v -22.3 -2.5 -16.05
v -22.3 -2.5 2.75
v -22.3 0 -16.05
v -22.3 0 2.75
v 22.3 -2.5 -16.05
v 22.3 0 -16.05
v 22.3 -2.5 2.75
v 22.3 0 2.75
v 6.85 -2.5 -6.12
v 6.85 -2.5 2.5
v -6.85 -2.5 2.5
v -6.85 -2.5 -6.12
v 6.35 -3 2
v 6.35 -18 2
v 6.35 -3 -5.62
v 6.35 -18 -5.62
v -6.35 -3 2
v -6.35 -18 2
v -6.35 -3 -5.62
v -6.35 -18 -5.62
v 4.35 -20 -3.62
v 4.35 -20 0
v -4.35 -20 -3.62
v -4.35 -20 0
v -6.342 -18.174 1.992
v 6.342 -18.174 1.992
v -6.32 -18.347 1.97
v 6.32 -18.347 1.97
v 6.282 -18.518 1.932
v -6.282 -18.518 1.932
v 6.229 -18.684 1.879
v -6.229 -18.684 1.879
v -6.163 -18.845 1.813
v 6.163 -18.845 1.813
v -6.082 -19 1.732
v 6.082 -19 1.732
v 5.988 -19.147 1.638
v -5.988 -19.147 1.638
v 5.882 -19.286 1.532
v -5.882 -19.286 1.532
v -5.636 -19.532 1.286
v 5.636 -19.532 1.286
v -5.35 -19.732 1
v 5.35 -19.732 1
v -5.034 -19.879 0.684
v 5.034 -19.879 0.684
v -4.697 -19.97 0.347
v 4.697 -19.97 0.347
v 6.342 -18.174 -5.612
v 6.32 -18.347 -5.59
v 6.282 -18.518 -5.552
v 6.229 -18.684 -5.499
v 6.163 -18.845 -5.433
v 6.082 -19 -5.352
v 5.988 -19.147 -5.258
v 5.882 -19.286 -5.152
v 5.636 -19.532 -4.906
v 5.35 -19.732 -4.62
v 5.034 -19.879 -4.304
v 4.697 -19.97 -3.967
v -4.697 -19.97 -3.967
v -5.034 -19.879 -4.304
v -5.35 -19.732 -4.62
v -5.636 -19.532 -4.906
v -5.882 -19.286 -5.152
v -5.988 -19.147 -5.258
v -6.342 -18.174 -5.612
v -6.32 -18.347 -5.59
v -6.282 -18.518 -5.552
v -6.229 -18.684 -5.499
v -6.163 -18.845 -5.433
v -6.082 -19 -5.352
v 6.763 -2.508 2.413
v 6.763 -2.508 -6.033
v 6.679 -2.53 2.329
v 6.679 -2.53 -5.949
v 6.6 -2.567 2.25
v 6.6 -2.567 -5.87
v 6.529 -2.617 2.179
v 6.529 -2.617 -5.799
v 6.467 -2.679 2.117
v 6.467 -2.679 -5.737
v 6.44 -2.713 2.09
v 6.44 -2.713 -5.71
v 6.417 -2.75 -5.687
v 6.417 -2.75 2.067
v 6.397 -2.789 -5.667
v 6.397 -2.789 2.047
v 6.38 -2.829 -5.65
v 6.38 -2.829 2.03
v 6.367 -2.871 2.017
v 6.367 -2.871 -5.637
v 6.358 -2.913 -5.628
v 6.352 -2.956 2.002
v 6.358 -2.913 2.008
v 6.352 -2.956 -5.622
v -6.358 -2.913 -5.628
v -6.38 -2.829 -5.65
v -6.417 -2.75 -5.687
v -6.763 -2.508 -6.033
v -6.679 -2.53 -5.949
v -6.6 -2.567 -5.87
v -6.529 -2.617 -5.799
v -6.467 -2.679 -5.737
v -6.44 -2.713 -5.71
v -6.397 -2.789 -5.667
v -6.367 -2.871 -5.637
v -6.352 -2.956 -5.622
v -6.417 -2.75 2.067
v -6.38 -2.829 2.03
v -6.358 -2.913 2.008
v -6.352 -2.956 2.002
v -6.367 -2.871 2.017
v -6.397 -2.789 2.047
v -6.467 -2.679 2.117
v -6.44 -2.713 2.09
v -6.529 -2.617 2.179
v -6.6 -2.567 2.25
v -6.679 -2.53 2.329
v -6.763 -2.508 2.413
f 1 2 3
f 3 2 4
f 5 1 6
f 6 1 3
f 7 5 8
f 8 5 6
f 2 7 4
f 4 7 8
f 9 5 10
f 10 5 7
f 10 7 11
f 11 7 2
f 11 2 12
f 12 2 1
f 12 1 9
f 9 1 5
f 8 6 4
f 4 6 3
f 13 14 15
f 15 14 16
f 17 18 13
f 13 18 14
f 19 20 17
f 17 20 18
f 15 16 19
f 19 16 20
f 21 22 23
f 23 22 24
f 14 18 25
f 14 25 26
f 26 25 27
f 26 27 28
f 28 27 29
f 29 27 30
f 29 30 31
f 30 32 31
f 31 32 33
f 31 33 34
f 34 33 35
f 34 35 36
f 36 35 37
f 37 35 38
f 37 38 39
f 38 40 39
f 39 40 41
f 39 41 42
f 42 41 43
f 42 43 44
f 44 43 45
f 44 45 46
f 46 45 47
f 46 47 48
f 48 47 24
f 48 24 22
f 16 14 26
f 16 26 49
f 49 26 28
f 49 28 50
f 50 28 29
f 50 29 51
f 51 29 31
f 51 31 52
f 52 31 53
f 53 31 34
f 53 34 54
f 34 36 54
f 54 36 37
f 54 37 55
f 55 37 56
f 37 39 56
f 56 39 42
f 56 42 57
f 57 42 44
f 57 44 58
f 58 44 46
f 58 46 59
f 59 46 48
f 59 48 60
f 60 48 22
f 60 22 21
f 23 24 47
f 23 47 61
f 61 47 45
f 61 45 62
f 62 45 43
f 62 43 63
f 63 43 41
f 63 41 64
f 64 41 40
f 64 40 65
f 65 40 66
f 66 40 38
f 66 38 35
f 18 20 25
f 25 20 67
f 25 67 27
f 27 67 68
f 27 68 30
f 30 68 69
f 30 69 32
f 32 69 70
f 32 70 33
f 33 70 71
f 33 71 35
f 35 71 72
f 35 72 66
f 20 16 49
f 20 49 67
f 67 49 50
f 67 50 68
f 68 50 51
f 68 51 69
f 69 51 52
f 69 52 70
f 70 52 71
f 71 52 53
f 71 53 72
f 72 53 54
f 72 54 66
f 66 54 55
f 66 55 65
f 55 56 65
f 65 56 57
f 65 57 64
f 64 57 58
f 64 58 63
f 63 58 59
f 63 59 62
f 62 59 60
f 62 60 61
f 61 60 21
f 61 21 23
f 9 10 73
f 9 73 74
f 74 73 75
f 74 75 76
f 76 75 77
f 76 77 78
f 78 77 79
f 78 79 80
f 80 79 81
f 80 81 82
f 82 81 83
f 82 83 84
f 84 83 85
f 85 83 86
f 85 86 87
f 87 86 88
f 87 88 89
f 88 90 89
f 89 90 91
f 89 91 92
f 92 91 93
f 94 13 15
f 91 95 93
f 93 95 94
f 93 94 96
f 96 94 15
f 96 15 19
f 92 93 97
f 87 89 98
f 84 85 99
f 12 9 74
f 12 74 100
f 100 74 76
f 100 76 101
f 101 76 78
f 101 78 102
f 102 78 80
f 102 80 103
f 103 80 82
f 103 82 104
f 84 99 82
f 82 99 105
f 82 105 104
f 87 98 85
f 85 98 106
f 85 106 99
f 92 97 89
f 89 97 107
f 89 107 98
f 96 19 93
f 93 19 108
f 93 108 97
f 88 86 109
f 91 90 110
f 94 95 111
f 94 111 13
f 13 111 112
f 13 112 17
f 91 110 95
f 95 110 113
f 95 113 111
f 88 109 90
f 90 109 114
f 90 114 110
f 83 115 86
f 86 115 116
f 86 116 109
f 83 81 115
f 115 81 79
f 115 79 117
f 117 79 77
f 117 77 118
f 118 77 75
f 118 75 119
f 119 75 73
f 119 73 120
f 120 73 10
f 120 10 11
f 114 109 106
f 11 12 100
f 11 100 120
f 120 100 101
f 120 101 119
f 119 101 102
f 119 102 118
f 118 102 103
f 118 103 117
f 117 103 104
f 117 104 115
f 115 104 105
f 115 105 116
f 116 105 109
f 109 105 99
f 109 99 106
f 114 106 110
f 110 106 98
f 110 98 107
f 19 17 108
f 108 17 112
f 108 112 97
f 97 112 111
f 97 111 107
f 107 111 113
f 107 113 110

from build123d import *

# Parameters (mm, degrees)
SKETCH1_W           = 44.6
SKETCH1_H           = 18.8
BOSS_EXTRUDE1_DEPTH = 2.5
SKETCH2_W           = 12.7
SKETCH2_H           = 7.62
BOSS_EXTRUDE2_DEPTH = 20
FILLET1_R           = 2
FILLET2_R           = 0.5


with BuildPart() as part:
    # Sketch1 → Boss-Extrude1 (new body)
    with BuildSketch(Plane(origin=(0, 0, 0), x_dir=(1, 0, 0), z_dir=(0, 1, 0))):
        with Locations((0, 6.65)):
            Rectangle(SKETCH1_W, SKETCH1_H)
    extrude(amount=-BOSS_EXTRUDE1_DEPTH)

    # Sketch2 → Boss-Extrude2 (add)
    with BuildSketch(Plane(origin=(0, 0, 0), x_dir=(1, 0, 0), z_dir=(0, 1, 0))):
        with Locations((0, 1.81)):
            Rectangle(SKETCH2_W, SKETCH2_H)
    extrude(amount=-BOSS_EXTRUDE2_DEPTH)

    # Fillet1
    fillet1_edges = [part.edges().sort_by_distance(p)[0] for p in [
        (6.35, -20, -1.81),
        (0, -20, 2),
        (-6.35, -20, -1.81),
        (0, -20, -5.62),
    ]]
    fillet(fillet1_edges, radius=FILLET1_R)

    # Fillet2
    fillet2_edges = [part.edges().sort_by_distance(p)[0] for p in [
        (6.35, -2.5, -1.81),
        (0, -2.5, 2),
        (-6.35, -2.5, -1.81),
        (0, -2.5, -5.62),
    ]]
    fillet(fillet2_edges, radius=FILLET2_R)


solid = part.part
